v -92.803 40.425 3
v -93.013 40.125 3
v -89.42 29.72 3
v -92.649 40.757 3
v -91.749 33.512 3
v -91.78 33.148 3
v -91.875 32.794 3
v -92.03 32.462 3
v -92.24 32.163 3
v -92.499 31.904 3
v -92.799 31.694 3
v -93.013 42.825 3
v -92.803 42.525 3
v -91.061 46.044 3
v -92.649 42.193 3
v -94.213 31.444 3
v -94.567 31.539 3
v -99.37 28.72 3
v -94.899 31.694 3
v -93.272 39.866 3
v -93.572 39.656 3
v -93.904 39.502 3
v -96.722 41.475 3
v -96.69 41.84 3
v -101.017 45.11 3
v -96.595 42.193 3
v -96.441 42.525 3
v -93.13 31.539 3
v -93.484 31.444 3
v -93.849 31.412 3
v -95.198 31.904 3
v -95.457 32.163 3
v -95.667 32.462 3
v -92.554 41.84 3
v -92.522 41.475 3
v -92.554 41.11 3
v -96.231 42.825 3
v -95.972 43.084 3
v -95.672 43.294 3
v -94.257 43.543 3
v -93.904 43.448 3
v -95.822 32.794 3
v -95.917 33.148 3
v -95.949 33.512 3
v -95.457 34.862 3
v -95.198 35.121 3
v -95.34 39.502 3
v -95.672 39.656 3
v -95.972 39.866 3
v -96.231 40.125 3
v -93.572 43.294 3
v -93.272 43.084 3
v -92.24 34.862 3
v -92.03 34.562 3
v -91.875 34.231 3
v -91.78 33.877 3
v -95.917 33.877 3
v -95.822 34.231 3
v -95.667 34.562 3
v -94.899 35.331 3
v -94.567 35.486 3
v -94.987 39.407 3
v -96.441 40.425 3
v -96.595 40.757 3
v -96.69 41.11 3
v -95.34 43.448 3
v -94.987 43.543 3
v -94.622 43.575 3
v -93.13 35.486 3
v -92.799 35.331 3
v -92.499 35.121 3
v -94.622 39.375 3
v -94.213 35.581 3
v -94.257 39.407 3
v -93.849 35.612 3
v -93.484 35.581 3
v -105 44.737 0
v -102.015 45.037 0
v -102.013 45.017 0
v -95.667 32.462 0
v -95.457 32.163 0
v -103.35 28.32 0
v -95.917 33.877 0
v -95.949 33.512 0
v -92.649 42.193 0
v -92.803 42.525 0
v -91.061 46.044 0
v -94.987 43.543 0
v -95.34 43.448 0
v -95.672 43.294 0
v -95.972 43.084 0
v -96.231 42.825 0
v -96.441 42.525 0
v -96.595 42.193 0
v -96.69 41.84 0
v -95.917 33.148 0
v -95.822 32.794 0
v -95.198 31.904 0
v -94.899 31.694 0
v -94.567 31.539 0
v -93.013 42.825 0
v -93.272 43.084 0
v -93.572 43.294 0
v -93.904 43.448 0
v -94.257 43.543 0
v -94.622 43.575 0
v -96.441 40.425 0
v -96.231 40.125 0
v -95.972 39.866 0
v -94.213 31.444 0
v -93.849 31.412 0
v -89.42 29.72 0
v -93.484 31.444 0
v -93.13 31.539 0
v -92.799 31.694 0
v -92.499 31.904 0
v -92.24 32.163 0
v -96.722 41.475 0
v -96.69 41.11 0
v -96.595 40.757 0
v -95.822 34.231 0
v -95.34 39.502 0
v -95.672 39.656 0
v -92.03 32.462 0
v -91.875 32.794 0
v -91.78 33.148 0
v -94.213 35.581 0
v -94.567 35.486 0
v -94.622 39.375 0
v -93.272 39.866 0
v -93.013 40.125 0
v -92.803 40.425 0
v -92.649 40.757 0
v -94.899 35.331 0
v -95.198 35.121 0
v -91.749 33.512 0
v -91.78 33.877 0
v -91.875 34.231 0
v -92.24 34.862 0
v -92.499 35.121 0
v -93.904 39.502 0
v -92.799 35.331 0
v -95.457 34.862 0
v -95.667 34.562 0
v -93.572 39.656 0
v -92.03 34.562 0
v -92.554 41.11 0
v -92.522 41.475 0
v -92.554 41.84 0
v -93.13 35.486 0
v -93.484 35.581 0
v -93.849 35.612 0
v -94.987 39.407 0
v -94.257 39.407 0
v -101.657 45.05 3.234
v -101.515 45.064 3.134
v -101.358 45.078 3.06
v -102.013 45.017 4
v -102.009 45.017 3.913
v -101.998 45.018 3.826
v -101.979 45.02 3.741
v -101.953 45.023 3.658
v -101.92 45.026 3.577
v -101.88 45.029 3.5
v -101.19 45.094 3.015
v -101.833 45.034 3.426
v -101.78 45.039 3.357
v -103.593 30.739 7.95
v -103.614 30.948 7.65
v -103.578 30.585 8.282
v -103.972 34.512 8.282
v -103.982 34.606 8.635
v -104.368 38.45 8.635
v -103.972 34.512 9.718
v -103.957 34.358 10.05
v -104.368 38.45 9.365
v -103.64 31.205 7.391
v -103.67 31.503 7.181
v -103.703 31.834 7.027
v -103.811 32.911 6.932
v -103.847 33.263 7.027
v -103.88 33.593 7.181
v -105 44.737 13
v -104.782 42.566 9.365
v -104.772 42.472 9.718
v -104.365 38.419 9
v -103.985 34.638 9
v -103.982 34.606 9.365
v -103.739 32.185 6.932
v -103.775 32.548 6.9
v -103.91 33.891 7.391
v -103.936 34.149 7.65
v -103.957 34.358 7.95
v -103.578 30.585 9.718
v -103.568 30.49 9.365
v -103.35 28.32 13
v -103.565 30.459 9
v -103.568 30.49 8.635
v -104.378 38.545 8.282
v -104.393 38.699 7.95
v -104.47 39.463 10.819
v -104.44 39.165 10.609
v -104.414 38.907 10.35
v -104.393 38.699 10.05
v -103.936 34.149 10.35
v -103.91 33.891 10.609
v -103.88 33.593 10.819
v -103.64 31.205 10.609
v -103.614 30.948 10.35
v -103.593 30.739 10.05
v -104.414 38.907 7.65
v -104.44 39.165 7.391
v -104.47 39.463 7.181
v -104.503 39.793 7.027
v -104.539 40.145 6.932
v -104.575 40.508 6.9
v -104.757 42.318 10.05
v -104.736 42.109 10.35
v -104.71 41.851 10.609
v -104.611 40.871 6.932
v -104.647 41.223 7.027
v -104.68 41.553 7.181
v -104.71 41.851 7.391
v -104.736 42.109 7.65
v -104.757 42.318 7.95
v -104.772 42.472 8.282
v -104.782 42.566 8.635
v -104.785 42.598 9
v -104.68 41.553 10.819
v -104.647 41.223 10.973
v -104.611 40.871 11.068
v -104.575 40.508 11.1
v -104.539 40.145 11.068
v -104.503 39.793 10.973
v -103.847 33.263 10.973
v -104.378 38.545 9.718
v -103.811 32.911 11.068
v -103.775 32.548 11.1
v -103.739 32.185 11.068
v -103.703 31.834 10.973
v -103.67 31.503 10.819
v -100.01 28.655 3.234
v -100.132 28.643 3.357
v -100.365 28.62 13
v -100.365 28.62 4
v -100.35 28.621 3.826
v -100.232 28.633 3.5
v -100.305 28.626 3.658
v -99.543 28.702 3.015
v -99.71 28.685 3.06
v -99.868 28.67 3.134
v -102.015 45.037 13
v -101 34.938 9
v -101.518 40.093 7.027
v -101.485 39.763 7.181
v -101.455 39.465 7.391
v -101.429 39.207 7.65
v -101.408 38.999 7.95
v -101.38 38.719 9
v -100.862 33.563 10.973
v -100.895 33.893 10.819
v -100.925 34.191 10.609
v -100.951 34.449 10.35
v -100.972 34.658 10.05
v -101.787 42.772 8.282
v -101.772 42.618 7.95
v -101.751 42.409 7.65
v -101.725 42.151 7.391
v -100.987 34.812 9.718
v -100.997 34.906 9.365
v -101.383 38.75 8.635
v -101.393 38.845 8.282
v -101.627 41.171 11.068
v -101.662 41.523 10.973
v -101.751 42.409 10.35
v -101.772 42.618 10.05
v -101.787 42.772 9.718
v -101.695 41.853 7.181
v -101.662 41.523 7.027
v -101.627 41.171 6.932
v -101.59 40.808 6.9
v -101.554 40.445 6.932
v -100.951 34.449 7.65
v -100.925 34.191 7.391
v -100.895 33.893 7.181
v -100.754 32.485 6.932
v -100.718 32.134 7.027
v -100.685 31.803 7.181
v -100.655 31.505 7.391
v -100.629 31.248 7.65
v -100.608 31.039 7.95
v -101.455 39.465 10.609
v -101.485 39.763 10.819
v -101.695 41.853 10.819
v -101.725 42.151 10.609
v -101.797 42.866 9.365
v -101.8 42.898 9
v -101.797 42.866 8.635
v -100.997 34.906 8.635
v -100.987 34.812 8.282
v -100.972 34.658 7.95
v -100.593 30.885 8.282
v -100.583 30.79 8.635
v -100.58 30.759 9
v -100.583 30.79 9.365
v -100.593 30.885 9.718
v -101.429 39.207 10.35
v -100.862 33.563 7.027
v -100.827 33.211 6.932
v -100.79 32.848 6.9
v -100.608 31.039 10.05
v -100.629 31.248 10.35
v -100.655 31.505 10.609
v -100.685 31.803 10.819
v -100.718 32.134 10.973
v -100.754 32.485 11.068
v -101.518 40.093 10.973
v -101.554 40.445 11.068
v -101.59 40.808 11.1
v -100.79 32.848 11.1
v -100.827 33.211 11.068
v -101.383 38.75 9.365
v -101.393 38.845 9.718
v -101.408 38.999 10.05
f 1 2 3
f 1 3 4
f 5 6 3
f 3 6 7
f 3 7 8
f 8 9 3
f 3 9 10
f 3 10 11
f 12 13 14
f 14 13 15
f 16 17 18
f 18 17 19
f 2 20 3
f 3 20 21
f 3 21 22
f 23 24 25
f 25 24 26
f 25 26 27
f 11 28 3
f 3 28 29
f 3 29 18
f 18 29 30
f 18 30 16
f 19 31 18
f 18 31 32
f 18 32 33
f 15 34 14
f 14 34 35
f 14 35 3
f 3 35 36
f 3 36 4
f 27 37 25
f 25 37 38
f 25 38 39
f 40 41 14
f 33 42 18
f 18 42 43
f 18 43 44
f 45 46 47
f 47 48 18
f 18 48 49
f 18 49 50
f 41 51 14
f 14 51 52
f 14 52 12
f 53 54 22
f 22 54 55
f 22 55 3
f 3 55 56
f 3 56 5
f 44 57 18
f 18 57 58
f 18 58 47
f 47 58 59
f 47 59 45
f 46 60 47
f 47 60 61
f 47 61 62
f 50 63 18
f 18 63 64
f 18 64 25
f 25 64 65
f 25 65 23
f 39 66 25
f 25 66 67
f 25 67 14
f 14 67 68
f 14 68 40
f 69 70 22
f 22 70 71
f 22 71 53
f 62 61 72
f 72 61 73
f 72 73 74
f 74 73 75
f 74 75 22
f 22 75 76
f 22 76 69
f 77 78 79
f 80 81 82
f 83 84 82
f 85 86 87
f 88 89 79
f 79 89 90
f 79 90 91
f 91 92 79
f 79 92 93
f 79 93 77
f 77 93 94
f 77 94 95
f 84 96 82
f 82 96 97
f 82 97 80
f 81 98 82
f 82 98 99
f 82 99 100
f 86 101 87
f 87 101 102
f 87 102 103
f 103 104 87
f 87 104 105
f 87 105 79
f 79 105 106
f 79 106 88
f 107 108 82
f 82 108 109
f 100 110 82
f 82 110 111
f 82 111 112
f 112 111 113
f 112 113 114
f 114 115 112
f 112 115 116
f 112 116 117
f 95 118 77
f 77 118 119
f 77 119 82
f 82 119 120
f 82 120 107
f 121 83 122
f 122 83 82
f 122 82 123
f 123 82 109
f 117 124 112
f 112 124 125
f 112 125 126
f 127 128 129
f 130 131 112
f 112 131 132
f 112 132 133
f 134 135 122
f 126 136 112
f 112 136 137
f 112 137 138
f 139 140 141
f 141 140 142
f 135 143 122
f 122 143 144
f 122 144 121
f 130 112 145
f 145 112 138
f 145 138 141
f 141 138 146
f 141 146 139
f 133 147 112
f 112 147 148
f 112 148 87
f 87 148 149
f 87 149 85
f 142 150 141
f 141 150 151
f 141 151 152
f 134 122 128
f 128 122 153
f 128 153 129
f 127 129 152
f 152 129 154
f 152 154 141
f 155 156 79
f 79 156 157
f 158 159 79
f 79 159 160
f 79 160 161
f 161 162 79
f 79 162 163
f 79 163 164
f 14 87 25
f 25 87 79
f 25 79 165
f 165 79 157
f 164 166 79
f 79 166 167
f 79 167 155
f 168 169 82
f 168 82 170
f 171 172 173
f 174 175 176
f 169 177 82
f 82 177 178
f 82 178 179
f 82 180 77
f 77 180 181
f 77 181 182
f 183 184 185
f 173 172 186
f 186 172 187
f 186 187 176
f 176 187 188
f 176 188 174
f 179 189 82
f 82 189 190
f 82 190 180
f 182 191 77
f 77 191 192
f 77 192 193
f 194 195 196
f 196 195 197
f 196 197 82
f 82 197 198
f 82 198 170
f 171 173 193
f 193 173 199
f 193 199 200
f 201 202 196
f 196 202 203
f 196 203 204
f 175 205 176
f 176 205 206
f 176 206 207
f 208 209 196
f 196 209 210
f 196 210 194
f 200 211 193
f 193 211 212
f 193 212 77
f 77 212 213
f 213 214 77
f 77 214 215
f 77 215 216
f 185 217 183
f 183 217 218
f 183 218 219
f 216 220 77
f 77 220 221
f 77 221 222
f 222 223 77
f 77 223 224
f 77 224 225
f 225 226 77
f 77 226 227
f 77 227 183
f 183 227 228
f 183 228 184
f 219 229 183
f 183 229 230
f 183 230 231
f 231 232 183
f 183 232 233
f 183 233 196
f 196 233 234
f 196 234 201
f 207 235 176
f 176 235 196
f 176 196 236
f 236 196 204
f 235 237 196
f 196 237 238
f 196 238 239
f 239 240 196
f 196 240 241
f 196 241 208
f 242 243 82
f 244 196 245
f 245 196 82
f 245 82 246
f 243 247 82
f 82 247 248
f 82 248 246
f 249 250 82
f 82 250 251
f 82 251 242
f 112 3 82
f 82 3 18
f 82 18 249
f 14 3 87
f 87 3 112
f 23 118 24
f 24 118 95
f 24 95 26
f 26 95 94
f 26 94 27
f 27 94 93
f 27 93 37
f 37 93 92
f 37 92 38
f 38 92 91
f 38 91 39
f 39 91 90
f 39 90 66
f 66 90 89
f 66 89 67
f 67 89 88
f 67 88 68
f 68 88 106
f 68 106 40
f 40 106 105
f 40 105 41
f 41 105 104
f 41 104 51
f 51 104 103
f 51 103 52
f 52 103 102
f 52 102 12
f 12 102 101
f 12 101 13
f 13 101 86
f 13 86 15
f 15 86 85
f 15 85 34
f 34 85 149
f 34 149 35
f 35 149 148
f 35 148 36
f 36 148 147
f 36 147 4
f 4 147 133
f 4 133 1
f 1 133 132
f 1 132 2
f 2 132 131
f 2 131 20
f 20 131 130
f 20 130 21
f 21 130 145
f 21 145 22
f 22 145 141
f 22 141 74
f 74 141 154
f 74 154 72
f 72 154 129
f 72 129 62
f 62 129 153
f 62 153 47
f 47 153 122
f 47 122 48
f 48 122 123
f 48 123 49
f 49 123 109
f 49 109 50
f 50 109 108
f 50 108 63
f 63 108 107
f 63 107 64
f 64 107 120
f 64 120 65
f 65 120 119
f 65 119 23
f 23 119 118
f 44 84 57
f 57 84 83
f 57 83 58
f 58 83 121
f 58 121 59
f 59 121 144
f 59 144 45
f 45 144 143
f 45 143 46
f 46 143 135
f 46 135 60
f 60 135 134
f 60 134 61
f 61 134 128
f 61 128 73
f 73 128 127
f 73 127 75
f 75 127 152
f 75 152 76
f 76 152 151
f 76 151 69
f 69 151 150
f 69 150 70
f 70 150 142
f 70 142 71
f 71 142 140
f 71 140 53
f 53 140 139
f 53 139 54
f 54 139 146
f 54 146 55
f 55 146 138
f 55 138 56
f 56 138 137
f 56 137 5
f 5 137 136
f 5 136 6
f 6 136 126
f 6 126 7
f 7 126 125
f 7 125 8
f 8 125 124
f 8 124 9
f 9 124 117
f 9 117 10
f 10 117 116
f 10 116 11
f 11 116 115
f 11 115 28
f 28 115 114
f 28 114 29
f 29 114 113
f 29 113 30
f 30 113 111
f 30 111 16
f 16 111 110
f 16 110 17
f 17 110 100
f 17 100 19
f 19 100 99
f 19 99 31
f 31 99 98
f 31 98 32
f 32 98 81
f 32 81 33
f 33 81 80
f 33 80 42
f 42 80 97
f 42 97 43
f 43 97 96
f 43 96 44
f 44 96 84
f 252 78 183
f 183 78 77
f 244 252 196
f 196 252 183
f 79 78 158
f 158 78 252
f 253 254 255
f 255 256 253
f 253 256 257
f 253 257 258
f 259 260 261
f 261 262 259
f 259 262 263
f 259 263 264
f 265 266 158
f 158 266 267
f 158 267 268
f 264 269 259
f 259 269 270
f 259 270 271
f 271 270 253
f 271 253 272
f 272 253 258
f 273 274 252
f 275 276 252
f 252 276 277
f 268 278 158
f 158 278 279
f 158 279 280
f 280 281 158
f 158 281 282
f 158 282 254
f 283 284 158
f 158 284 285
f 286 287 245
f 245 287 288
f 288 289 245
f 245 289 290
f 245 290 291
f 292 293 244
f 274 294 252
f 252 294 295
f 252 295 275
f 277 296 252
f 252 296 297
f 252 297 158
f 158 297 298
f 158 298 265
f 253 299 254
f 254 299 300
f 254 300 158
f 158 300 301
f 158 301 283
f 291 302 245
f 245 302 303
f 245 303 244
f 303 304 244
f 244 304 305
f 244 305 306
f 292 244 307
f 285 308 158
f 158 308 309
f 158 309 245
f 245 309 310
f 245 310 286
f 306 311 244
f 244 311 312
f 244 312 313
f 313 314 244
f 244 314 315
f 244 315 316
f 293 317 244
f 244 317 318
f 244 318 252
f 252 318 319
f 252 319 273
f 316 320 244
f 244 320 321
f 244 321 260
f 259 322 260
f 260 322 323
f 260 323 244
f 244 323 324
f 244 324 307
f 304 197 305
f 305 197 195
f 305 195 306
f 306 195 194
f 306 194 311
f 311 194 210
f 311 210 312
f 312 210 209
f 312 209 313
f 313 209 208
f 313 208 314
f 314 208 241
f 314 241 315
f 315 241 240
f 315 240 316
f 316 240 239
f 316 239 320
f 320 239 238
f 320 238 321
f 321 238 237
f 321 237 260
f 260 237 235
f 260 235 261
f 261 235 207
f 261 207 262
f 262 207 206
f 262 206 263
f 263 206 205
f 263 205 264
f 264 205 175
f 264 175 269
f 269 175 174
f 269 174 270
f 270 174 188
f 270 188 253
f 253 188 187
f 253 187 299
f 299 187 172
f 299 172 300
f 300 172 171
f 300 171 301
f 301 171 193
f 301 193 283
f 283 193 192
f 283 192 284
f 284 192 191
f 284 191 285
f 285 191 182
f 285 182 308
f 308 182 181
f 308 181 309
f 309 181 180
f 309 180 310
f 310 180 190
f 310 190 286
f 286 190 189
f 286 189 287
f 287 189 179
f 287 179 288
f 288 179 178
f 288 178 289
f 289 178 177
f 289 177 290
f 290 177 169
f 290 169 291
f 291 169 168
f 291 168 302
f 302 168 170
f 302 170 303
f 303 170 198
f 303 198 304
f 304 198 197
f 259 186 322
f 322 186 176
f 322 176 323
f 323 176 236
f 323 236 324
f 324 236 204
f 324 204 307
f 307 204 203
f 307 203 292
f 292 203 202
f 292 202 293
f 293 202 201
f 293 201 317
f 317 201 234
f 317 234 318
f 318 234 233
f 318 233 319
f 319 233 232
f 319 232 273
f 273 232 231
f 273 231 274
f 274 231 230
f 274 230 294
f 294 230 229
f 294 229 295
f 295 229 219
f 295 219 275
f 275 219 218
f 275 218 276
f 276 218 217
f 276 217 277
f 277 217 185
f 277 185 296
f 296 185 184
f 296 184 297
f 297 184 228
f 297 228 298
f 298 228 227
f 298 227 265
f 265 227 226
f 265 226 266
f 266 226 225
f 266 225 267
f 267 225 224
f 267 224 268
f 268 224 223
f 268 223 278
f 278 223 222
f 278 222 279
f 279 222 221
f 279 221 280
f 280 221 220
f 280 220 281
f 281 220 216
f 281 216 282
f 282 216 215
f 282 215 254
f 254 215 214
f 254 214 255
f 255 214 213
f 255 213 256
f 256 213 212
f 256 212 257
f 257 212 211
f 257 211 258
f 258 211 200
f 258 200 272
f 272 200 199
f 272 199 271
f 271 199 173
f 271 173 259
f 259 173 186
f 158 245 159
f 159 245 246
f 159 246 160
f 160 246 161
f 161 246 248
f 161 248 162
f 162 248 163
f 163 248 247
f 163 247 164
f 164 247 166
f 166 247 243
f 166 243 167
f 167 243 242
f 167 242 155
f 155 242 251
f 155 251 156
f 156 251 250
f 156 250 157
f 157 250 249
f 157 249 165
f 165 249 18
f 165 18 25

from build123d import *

# Parameters (mm, degrees)
SKETCH1_R           = 2.1
BOSS_EXTRUDE1_DEPTH = 3
SKETCH3_W           = 13
SKETCH3_H           = 16.5
SKETCH3_R           = 2.1
BOSS_EXTRUDE2_DEPTH = 3
FILLET1_R           = 1


with BuildPart() as part:
    # Sketch1 → Boss-Extrude1 (new body)
    with BuildSketch(Plane.XY):
        Polygon((-105, 44.736808962), (-103.35, 28.31951625), (-89.420175881, 29.71951625), (-91.061152102, 46.043912356), align=None)
        with Locations((-94.622025059, 41.474945451)):
            Circle(SKETCH1_R, mode=Mode.SUBTRACT)
        with Locations((-93.848562649, 33.512423495)):
            Circle(SKETCH1_R, mode=Mode.SUBTRACT)
    extrude(amount=BOSS_EXTRUDE1_DEPTH)

    # Sketch3 → Boss-Extrude2 (add)
    with BuildSketch(Plane(origin=(-99.498743711, -10, 0), x_dir=(0, 0, 1), z_dir=(-0.9949874371066202, -0.09999999999999917, 0))):
        with Locations((6.5, 46.762562893)):
            Rectangle(SKETCH3_W, SKETCH3_H)
        with Locations(Location((9, 42.762562893, 0), (0, 0, 270))):
            Circle(SKETCH3_R, mode=Mode.SUBTRACT)
        with Locations(Location((9, 50.762562893, 0), (0, 0, 270))):
            Circle(SKETCH3_R, mode=Mode.SUBTRACT)
    extrude(amount=-BOSS_EXTRUDE2_DEPTH)

    # Fillet1
    fillet1_edges = [part.edges().sort_by_distance(p)[0] for p in [
        (-101.189037666, 36.81821251, 3),
    ]]
    fillet(fillet1_edges, radius=FILLET1_R)


solid = part.part
